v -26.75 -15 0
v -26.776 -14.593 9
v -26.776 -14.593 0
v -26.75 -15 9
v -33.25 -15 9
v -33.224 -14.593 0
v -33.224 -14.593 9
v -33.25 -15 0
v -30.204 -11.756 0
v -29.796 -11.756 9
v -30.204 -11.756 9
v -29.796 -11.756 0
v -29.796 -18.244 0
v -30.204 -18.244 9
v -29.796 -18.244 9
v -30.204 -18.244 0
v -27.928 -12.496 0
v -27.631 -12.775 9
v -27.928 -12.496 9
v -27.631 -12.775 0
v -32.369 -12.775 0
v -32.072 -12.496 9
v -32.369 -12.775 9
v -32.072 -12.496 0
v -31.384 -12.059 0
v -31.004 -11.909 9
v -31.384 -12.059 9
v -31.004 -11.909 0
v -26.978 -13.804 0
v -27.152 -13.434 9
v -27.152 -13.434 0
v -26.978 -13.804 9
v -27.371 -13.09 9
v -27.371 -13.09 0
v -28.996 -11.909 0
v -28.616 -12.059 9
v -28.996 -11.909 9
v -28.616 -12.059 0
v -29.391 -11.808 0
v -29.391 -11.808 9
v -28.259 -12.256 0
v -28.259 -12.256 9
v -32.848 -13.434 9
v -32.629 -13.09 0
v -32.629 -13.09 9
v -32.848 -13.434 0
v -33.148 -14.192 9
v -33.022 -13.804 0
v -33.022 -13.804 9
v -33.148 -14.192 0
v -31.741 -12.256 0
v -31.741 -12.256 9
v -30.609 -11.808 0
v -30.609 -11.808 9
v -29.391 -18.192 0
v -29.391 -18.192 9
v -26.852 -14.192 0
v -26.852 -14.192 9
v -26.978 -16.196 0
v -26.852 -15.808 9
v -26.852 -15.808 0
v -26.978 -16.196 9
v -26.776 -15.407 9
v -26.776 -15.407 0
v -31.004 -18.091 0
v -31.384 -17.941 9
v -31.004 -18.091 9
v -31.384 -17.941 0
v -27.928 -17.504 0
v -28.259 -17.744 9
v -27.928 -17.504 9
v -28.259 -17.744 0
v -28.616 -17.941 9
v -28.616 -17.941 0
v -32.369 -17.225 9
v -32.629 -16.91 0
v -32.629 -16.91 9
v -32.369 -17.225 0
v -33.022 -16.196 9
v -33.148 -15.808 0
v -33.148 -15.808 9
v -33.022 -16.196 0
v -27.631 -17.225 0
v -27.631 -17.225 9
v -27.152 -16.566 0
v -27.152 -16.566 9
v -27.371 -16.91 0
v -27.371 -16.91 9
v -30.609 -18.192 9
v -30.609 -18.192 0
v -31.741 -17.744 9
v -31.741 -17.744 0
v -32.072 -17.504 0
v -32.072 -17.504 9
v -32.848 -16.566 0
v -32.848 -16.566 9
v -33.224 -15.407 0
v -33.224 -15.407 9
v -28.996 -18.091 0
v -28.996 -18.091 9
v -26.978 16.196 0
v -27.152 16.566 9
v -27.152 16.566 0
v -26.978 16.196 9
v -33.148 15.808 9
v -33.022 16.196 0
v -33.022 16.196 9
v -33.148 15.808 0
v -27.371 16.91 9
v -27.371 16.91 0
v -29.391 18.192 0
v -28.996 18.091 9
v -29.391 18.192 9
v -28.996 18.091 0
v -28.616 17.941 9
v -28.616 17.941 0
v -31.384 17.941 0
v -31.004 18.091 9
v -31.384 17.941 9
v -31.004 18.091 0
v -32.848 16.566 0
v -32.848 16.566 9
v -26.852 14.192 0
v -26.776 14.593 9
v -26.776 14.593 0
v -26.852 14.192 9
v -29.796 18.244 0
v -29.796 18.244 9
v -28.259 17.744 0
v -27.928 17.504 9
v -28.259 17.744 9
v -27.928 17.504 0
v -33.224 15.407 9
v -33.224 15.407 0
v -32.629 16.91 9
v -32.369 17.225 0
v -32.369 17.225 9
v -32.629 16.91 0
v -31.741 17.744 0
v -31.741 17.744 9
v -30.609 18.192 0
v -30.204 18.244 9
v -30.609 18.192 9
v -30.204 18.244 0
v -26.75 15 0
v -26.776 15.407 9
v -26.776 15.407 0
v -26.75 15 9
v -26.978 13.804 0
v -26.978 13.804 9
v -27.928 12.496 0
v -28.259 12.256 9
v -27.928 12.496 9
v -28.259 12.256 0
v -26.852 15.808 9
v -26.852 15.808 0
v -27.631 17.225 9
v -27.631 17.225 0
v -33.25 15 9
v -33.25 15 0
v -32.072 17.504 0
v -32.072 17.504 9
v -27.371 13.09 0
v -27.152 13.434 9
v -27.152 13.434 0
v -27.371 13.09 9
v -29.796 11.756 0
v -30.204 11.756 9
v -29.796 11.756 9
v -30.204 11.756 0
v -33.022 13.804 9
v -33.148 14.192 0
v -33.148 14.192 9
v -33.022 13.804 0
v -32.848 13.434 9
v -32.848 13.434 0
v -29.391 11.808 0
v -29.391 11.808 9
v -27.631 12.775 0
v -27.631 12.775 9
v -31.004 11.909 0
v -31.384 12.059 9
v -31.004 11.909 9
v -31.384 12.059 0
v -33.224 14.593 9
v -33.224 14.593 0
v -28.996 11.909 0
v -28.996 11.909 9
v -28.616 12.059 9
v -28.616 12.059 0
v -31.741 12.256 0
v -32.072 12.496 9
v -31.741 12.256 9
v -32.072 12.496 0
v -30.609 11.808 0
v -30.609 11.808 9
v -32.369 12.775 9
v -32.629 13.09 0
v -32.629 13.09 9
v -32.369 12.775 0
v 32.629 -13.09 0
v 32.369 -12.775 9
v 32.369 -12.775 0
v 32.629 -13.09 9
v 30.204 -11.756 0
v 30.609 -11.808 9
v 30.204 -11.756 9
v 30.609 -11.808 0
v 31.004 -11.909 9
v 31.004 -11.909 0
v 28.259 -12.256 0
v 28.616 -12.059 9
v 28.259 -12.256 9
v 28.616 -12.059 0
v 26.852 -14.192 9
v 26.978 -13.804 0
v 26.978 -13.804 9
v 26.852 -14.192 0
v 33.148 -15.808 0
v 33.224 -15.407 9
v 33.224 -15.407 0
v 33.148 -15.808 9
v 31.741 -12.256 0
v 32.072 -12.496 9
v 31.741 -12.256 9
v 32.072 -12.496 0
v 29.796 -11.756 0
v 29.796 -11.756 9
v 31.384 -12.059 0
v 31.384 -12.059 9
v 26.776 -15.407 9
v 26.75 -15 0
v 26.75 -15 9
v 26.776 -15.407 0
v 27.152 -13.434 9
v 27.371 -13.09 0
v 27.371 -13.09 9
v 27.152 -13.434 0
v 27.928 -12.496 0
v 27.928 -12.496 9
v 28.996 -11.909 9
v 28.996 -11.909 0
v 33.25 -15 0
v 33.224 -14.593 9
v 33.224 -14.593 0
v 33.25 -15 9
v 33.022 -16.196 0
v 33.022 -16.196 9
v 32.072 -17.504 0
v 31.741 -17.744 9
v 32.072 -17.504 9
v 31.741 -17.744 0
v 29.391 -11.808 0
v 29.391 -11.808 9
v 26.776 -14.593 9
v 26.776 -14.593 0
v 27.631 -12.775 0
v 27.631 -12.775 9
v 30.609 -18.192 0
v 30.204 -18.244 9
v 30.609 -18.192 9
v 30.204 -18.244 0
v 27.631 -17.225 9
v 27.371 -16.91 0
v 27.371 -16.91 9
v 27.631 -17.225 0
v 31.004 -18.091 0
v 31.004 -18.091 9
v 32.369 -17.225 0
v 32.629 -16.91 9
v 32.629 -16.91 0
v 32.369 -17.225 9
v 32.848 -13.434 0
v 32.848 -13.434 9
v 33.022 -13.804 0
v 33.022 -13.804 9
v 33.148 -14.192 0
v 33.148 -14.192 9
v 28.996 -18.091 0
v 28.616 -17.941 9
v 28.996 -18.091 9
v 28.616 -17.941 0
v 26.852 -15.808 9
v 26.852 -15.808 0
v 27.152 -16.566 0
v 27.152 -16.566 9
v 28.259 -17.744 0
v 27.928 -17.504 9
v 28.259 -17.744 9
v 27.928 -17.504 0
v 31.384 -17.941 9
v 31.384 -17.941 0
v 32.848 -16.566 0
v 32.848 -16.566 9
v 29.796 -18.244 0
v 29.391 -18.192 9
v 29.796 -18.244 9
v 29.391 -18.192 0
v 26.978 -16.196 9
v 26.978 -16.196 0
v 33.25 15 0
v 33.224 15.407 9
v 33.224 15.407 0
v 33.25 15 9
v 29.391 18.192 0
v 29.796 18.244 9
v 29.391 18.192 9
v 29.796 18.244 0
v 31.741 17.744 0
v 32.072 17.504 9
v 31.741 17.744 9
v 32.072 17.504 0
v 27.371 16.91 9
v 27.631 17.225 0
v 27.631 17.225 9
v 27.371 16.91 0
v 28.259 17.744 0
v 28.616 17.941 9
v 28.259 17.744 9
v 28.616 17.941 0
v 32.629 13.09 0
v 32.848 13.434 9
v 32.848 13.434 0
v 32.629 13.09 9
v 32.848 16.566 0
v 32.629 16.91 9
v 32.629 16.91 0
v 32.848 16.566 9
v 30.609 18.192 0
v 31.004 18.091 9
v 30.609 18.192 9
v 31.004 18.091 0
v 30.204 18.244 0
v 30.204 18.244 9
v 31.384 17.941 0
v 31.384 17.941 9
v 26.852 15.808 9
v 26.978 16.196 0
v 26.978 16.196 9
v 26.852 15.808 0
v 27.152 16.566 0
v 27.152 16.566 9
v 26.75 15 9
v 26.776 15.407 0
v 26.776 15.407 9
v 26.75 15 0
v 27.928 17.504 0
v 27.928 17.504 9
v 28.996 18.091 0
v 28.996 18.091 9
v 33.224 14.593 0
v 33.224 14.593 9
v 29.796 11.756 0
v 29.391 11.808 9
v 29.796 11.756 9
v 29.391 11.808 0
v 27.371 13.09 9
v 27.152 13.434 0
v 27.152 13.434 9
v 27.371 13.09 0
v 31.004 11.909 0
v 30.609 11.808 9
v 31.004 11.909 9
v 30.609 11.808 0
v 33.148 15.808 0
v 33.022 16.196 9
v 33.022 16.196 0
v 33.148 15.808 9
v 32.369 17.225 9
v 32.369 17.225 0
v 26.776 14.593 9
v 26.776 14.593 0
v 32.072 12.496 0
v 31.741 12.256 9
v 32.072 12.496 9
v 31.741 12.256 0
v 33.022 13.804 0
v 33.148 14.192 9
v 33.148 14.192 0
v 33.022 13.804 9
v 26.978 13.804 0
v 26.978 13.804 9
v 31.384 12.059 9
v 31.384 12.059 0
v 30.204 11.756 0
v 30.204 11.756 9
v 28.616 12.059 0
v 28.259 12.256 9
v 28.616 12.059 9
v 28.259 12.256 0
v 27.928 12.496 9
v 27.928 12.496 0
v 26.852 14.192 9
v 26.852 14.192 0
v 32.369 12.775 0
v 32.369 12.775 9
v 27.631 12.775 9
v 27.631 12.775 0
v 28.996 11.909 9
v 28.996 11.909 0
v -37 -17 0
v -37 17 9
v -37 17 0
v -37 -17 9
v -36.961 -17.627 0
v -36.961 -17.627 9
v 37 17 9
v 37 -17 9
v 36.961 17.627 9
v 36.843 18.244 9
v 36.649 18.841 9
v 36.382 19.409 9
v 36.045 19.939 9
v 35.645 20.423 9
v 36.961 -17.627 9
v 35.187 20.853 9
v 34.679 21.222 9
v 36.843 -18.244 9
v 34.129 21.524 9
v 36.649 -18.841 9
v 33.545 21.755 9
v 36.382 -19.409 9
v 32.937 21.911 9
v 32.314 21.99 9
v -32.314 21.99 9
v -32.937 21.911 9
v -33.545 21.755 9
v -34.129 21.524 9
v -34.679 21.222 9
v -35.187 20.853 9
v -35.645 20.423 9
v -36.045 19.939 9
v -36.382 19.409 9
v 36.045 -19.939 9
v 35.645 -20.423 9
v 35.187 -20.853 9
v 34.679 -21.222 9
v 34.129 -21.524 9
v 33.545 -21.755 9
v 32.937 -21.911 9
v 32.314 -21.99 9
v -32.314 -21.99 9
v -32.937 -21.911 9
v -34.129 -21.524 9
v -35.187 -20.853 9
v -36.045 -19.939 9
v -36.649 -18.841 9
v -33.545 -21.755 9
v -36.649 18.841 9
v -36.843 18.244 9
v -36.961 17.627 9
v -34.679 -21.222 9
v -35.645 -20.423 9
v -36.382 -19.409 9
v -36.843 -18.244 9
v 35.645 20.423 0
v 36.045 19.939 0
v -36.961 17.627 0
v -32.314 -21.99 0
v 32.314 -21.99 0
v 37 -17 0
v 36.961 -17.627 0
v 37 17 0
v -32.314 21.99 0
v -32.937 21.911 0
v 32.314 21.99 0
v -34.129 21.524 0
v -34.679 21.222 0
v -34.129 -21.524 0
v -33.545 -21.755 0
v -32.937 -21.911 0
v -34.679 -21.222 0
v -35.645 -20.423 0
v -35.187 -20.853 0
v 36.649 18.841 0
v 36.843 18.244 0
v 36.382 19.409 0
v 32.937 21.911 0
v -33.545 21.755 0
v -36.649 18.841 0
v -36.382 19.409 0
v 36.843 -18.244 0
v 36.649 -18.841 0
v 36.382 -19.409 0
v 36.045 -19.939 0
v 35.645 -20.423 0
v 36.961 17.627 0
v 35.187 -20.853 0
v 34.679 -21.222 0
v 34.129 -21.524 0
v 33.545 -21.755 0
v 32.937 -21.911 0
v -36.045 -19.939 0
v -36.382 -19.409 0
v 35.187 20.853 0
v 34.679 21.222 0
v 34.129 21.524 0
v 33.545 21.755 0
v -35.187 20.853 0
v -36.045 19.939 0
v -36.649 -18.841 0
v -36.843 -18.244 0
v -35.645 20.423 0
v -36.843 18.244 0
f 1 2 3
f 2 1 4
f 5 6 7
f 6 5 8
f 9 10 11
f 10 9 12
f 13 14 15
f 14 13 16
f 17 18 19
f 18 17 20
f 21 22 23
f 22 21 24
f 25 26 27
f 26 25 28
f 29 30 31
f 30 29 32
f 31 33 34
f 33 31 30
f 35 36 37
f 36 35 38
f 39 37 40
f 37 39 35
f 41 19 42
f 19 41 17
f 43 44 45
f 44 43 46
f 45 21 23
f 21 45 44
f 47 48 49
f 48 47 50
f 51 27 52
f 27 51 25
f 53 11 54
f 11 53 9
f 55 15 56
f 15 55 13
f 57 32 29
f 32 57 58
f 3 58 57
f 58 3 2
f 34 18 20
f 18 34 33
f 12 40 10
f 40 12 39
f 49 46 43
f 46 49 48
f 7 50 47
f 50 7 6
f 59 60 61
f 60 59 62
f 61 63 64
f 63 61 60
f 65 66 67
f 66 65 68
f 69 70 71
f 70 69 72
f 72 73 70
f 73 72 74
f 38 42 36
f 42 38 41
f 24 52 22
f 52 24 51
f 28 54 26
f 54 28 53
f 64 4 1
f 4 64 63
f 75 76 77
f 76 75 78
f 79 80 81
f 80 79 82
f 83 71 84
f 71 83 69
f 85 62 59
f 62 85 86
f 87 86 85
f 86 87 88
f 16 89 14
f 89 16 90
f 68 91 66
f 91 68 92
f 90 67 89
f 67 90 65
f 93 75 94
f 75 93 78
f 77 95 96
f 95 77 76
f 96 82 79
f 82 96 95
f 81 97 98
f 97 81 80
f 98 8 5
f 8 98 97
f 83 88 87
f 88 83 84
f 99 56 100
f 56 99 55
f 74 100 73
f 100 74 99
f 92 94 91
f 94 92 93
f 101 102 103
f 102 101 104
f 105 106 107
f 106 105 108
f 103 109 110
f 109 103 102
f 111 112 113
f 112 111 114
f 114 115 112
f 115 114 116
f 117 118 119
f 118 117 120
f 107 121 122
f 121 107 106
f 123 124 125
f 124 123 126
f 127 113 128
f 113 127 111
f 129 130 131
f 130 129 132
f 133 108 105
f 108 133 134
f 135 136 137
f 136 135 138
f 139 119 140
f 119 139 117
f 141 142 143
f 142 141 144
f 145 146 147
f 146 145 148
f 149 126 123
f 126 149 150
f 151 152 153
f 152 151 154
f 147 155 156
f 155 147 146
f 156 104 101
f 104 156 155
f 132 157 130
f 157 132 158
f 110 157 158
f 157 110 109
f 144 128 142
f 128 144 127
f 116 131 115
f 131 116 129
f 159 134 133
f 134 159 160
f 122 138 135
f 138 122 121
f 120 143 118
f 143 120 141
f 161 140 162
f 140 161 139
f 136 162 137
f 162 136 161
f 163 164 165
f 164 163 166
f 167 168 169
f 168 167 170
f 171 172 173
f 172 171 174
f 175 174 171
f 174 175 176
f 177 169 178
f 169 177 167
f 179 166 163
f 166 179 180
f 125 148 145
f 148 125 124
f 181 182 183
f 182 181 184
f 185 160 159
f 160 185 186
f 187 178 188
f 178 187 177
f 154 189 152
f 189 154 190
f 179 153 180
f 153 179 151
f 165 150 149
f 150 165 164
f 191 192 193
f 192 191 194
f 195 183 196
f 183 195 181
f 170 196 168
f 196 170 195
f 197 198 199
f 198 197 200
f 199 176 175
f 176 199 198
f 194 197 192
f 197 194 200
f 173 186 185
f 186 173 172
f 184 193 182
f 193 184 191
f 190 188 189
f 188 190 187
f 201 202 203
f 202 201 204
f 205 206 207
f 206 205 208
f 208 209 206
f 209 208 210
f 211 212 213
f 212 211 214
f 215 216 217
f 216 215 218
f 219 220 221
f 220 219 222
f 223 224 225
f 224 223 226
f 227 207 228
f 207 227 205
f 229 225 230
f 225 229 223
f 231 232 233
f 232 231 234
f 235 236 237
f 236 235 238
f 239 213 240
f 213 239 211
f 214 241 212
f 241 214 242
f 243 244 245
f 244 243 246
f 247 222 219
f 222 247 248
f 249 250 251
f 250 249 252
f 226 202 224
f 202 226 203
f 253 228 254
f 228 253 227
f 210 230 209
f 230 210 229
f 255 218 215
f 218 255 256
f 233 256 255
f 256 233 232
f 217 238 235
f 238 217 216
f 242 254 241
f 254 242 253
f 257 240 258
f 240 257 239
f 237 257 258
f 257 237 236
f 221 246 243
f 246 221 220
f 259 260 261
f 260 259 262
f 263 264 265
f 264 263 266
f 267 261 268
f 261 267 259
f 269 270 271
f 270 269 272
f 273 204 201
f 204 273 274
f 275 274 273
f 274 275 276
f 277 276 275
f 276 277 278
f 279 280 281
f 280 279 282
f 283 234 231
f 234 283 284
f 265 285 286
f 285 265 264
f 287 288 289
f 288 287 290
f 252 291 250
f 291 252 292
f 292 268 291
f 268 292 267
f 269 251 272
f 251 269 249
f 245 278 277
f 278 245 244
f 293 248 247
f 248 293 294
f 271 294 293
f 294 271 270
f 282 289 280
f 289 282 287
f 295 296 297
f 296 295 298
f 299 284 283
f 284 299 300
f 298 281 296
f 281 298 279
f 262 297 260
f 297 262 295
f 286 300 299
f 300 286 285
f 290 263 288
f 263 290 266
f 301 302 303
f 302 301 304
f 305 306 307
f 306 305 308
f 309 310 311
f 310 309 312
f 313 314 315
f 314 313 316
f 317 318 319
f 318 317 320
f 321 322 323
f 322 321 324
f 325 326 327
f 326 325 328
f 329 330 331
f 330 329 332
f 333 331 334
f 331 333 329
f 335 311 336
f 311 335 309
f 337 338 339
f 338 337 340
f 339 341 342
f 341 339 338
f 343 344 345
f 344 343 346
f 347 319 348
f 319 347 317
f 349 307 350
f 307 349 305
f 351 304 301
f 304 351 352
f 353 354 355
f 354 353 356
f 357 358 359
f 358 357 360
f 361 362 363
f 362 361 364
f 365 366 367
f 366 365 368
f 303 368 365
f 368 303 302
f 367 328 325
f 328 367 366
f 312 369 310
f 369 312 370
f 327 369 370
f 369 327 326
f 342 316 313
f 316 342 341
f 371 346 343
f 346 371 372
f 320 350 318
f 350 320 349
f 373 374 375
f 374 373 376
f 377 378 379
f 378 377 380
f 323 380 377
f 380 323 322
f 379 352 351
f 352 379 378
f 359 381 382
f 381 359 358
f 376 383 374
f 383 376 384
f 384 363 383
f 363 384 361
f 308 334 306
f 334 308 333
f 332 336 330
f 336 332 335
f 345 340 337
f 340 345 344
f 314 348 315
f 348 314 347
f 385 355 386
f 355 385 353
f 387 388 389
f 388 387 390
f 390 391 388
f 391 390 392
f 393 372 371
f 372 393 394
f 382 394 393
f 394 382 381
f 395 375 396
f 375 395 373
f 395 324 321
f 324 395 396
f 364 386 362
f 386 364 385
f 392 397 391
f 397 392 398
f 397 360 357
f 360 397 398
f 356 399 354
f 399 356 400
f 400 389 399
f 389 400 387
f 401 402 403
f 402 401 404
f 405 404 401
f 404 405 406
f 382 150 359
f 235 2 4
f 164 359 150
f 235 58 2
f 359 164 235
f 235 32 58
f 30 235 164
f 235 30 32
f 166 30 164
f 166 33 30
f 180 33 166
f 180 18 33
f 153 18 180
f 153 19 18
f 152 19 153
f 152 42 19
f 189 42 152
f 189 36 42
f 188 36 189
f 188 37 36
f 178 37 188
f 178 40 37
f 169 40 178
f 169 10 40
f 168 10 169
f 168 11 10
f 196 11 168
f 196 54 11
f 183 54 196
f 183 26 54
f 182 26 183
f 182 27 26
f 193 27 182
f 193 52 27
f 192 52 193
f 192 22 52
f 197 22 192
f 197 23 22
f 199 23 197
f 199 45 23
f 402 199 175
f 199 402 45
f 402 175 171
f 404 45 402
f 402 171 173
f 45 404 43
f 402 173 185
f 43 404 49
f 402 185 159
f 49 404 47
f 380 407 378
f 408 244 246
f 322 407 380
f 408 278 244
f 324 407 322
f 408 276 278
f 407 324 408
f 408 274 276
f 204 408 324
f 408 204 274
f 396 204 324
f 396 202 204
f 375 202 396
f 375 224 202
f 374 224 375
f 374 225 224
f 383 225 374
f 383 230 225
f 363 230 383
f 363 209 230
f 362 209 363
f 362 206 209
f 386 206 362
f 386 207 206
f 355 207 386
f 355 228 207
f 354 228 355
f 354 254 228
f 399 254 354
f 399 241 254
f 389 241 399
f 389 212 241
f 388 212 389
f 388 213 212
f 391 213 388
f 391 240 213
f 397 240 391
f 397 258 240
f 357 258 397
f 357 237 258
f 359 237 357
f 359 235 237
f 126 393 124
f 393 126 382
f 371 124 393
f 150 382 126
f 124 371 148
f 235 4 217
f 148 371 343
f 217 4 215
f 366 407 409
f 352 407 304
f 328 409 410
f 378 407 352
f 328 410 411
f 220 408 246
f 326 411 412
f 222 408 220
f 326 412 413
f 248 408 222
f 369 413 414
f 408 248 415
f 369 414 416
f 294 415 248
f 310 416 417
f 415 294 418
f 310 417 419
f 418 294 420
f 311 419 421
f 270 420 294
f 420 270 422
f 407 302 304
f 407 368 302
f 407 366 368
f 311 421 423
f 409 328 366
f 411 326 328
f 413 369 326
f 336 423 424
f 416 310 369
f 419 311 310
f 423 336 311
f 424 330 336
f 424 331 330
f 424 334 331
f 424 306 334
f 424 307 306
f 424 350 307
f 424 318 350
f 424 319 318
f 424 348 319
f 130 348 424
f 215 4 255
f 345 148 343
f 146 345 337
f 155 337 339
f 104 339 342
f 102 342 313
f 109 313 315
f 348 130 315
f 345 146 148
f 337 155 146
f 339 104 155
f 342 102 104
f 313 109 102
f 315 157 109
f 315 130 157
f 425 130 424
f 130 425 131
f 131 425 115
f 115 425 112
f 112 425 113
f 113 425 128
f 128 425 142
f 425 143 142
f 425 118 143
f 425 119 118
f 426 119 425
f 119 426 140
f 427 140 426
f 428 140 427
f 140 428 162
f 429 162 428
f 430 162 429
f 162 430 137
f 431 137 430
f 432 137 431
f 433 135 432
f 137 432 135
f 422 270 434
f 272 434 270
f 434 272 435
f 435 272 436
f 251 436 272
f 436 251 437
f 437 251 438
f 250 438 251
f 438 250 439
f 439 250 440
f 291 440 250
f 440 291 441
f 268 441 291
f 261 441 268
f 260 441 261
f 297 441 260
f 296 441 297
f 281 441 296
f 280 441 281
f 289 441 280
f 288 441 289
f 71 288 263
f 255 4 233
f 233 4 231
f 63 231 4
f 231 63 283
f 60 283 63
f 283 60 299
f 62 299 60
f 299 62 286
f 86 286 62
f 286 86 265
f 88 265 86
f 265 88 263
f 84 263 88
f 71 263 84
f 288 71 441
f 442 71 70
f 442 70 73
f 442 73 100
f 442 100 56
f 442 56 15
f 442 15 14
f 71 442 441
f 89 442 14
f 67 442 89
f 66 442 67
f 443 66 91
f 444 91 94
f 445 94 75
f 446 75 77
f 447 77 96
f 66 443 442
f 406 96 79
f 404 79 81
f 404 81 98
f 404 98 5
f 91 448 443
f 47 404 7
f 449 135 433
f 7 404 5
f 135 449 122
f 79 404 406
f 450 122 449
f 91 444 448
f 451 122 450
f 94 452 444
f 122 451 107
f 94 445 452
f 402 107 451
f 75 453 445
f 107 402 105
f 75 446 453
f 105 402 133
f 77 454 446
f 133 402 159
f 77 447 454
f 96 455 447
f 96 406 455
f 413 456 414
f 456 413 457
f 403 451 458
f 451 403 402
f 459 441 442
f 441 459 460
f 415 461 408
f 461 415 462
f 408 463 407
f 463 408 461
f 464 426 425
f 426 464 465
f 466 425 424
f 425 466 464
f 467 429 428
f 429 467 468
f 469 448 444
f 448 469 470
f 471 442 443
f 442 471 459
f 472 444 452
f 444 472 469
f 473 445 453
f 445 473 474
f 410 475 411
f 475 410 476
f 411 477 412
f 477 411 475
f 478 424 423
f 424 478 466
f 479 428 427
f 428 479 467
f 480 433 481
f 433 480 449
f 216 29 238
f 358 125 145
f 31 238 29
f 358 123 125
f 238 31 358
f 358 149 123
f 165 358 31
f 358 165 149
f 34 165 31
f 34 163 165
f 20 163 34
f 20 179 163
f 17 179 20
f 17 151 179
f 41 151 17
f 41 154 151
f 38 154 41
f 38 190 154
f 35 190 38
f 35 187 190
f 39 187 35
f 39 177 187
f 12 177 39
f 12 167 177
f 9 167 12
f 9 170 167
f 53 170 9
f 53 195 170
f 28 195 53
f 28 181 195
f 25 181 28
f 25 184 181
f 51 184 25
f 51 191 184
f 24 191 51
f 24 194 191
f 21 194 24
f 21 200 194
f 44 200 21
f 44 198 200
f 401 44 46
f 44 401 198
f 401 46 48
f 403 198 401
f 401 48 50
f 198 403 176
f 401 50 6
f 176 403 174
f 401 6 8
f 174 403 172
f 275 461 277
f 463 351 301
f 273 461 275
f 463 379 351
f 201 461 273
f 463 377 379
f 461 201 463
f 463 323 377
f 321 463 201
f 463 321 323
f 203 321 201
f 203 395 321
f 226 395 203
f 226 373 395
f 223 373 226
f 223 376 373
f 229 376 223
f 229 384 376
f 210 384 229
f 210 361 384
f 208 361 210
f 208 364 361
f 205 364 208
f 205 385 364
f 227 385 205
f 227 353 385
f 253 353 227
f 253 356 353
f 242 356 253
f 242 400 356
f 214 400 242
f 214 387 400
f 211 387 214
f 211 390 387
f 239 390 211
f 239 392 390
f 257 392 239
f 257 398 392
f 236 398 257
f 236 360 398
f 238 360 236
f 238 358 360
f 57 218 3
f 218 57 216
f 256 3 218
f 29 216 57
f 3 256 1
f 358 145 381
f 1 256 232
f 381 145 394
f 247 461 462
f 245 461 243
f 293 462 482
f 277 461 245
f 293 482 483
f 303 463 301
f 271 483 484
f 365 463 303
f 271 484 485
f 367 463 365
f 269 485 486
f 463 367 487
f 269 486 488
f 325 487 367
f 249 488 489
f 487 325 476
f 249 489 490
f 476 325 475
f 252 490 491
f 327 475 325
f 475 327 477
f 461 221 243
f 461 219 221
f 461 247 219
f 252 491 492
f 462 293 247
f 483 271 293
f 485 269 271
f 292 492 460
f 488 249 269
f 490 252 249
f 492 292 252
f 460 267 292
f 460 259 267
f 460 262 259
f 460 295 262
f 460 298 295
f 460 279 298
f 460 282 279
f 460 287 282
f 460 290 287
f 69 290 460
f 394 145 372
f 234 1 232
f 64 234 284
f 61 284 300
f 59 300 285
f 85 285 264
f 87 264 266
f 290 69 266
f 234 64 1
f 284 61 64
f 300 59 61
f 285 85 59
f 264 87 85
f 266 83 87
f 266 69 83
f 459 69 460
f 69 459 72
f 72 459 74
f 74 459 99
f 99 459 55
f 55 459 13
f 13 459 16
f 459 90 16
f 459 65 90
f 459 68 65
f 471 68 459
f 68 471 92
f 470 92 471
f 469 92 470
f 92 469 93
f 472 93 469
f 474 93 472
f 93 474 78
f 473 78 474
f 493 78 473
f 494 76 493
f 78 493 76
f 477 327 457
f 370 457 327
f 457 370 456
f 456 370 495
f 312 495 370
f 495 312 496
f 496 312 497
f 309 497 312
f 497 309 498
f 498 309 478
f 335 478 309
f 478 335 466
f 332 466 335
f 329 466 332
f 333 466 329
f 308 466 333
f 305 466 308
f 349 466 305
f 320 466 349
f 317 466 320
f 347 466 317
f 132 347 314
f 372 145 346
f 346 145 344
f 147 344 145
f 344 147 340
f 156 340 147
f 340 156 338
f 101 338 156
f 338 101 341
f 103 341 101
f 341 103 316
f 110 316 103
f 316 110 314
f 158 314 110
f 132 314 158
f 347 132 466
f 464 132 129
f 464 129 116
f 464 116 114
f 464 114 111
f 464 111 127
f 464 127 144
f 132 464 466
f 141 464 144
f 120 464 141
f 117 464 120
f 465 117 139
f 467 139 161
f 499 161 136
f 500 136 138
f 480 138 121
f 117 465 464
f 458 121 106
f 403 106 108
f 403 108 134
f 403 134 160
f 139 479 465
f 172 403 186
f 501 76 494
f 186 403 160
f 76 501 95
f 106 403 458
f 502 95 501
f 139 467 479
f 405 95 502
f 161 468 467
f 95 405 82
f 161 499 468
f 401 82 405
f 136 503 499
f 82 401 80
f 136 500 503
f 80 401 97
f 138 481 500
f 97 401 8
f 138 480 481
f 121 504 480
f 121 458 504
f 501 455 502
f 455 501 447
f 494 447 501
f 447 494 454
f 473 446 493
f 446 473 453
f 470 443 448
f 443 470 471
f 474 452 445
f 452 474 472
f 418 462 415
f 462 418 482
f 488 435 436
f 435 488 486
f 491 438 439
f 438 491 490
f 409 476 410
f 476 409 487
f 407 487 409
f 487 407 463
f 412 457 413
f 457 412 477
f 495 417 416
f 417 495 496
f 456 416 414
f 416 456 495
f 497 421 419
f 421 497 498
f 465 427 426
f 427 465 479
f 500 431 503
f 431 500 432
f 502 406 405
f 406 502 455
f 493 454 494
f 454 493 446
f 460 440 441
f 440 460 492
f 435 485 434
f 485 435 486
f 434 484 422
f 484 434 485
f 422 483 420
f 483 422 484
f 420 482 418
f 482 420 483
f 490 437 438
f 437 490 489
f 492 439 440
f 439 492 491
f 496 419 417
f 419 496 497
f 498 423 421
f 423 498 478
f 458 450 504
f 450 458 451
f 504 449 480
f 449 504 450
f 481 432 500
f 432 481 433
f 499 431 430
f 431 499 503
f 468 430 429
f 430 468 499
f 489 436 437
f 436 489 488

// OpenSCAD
$fn = 50;


difference() {
	union() {
		hull() {
			translate(v = [-32.0000000000, 17.0000000000, 0]) {
				cylinder(h = 9, r = 5);
			}
			translate(v = [32.0000000000, 17.0000000000, 0]) {
				cylinder(h = 9, r = 5);
			}
			translate(v = [-32.0000000000, -17.0000000000, 0]) {
				cylinder(h = 9, r = 5);
			}
			translate(v = [32.0000000000, -17.0000000000, 0]) {
				cylinder(h = 9, r = 5);
			}
		}
	}
	union() {
		translate(v = [-30.0000000000, -15.0000000000, -100.0000000000]) {
			cylinder(h = 200, r = 3.2500000000);
		}
		translate(v = [-30.0000000000, 15.0000000000, -100.0000000000]) {
			cylinder(h = 200, r = 3.2500000000);
		}
		translate(v = [30.0000000000, -15.0000000000, -100.0000000000]) {
			cylinder(h = 200, r = 3.2500000000);
		}
		translate(v = [30.0000000000, 15.0000000000, -100.0000000000]) {
			cylinder(h = 200, r = 3.2500000000);
		}
	}
}
